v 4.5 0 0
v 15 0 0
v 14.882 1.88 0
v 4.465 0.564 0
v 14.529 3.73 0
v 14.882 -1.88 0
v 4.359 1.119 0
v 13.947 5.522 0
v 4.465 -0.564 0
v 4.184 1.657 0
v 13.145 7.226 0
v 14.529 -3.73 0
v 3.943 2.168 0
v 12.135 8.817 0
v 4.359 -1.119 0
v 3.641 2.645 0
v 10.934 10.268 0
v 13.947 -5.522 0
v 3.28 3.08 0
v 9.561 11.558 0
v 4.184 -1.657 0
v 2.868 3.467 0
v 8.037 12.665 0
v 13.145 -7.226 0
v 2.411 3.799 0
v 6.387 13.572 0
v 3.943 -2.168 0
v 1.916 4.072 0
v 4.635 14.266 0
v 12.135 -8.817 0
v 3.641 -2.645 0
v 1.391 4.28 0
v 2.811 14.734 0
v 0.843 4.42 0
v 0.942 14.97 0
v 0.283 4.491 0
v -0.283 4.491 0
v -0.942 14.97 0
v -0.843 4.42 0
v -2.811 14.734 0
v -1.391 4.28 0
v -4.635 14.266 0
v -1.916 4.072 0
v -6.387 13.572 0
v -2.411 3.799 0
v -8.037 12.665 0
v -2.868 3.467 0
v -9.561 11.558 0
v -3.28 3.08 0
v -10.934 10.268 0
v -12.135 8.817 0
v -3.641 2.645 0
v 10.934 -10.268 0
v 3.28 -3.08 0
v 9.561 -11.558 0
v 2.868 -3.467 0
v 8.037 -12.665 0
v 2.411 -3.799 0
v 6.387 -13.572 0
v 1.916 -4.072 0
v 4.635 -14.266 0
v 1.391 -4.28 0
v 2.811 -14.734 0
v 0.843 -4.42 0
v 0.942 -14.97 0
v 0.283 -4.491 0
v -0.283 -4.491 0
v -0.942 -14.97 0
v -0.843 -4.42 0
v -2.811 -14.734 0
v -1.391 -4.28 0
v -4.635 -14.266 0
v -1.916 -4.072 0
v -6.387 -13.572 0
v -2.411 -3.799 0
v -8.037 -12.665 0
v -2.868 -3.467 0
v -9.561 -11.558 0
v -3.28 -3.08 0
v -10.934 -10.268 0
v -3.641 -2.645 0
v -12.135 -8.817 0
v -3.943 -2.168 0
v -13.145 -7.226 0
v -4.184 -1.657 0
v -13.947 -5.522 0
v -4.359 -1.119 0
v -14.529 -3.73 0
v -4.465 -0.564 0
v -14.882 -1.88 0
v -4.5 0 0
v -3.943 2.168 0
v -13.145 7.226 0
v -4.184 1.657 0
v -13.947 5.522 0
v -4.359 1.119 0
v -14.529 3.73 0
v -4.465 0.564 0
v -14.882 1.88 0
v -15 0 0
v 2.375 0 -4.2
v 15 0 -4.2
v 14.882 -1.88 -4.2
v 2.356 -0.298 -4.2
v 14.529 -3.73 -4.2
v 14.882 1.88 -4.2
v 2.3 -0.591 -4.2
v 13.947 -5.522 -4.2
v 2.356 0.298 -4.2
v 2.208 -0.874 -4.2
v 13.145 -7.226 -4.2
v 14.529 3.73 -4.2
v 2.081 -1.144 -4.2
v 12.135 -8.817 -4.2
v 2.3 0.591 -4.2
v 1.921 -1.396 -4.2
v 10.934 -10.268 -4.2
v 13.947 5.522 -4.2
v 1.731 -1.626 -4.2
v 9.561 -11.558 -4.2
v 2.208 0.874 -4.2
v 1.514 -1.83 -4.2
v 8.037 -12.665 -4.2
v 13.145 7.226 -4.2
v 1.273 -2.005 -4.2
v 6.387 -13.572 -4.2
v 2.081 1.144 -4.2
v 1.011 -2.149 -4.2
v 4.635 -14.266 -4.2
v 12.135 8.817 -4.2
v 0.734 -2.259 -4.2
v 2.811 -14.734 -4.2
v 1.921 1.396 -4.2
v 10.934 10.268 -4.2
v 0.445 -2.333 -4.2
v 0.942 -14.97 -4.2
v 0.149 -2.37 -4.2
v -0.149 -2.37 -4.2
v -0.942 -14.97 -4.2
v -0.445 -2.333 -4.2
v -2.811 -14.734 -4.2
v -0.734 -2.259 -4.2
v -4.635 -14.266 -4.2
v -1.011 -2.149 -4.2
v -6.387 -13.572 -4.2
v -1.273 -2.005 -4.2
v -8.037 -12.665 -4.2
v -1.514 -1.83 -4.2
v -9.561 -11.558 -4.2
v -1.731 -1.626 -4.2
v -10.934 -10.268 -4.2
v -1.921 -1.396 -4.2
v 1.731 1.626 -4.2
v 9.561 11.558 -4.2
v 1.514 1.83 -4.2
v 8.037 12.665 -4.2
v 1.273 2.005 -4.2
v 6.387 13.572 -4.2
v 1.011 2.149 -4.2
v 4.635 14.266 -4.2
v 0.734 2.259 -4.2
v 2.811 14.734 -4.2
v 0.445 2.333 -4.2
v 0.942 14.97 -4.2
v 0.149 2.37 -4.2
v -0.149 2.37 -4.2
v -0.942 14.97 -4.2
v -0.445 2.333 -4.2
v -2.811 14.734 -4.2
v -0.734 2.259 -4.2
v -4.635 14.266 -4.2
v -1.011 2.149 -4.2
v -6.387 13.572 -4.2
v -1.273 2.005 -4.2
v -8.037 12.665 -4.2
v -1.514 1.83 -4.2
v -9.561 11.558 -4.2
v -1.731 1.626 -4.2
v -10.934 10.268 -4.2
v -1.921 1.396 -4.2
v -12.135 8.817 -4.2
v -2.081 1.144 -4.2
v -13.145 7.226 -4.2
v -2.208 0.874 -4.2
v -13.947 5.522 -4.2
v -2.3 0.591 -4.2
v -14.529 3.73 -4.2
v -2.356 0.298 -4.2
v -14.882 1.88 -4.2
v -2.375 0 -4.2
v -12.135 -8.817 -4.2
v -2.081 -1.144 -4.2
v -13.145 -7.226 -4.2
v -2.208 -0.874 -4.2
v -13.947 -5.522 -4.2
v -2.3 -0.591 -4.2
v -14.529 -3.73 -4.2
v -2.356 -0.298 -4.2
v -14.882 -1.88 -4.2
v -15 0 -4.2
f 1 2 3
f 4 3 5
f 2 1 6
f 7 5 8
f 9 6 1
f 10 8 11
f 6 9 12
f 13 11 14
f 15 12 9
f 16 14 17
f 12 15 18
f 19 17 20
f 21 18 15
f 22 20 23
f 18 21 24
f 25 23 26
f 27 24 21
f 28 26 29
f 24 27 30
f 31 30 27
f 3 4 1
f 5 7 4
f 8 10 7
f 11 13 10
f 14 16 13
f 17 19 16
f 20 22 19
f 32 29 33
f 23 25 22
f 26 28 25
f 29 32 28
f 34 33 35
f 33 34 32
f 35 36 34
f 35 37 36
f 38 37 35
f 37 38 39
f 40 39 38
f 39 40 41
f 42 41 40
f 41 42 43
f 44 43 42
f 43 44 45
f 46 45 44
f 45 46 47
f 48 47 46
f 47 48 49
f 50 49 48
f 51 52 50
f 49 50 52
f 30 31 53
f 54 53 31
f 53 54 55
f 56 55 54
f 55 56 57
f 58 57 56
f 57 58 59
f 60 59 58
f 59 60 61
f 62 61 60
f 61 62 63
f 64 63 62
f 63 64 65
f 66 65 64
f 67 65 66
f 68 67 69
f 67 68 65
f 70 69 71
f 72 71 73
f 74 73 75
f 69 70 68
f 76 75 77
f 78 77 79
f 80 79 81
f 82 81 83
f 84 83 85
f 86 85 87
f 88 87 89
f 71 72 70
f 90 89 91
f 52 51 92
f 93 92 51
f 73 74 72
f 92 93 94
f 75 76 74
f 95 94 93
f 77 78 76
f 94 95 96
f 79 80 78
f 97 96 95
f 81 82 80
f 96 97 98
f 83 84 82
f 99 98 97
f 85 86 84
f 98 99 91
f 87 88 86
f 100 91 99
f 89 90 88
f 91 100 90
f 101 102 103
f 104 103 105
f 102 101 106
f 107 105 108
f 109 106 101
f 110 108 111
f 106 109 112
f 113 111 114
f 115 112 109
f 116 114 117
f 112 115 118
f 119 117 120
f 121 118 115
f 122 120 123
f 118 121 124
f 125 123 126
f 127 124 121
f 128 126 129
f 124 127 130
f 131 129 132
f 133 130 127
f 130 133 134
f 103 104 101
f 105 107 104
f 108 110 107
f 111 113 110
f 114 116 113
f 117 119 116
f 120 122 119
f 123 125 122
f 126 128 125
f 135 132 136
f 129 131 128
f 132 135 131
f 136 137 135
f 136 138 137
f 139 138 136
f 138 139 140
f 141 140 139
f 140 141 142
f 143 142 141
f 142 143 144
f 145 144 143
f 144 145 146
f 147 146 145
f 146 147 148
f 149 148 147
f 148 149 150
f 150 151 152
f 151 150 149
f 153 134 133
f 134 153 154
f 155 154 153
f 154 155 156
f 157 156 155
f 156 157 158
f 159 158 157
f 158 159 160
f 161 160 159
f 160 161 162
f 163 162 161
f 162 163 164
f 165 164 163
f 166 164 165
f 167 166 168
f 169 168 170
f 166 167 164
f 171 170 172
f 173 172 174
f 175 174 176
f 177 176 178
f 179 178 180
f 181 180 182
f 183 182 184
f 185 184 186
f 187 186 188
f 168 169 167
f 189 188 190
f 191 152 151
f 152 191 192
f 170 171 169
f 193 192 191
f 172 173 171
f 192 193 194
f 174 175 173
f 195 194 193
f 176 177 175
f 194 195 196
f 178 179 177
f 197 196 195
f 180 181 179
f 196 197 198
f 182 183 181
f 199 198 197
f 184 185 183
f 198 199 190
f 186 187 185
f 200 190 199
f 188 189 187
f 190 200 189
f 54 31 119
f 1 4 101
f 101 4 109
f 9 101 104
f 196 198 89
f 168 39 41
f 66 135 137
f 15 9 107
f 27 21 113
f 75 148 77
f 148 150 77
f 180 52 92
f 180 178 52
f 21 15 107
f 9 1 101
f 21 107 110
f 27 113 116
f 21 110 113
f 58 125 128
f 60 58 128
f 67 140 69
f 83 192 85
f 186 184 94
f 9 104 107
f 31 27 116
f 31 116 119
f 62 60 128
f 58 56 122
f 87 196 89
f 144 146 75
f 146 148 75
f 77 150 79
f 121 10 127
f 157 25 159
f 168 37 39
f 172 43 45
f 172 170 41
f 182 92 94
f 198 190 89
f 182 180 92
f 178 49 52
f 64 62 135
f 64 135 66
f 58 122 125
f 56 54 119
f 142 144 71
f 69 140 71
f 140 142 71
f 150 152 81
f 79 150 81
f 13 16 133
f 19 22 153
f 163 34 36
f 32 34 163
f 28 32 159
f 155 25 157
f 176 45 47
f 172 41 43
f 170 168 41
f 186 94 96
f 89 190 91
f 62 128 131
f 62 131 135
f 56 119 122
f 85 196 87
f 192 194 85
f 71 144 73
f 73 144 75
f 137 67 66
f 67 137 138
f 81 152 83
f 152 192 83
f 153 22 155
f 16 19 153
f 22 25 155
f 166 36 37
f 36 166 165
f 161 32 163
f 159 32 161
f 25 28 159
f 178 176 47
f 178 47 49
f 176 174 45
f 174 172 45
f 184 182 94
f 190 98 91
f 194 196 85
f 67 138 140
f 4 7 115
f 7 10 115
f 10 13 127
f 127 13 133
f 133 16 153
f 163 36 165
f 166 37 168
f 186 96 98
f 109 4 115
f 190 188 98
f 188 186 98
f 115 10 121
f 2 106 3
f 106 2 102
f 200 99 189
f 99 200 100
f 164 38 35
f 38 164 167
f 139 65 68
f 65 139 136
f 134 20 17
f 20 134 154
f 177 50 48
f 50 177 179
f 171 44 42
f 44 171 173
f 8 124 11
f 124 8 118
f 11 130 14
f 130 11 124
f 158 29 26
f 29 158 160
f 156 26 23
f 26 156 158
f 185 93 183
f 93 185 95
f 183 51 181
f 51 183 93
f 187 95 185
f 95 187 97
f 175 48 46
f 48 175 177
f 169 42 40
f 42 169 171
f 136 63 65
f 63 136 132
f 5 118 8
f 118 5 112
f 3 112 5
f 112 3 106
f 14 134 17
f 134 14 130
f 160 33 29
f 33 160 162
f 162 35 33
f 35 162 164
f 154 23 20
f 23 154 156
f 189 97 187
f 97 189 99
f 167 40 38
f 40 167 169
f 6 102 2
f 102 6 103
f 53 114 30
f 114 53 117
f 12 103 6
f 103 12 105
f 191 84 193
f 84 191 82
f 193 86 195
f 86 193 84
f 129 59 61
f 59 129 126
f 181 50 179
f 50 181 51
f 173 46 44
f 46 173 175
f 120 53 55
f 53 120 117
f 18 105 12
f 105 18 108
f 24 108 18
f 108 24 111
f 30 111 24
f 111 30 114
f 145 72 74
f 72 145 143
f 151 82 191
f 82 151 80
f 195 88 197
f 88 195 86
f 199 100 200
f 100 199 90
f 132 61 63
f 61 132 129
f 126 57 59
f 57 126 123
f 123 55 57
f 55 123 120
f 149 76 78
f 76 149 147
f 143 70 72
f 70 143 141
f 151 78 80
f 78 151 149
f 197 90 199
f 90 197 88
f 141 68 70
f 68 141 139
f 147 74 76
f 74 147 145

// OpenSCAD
$fn = 50;


difference() {
	union() {
		translate(v = [0, 0, -4.2000000000]) {
			cylinder(h = 4.2000000000, r = 15.0000000000);
		}
	}
	union() {
		translate(v = [0, 0, 0]) {
			rotate(a = [0, 0, 0]) {
				difference() {
					union() {
						translate(v = [0, 0, -4.2000000000]) {
							cylinder(h = 4.2000000000, r = 2.2500000000);
						}
						translate(v = [0, 0, -4.2000000000]) {
							cylinder(h = 4.2000000000, r1 = 2.3750000000, r2 = 4.5000000000);
						}
						translate(v = [0, 0, -4.2000000000]) {
							cylinder(h = 4.2000000000, r = 2.3750000000);
						}
						translate(v = [0, 0, -4.2000000000]) {
							cylinder(h = 4.2000000000, r = 2.2500000000);
						}
					}
					union();
				}
			}
		}
	}
}
